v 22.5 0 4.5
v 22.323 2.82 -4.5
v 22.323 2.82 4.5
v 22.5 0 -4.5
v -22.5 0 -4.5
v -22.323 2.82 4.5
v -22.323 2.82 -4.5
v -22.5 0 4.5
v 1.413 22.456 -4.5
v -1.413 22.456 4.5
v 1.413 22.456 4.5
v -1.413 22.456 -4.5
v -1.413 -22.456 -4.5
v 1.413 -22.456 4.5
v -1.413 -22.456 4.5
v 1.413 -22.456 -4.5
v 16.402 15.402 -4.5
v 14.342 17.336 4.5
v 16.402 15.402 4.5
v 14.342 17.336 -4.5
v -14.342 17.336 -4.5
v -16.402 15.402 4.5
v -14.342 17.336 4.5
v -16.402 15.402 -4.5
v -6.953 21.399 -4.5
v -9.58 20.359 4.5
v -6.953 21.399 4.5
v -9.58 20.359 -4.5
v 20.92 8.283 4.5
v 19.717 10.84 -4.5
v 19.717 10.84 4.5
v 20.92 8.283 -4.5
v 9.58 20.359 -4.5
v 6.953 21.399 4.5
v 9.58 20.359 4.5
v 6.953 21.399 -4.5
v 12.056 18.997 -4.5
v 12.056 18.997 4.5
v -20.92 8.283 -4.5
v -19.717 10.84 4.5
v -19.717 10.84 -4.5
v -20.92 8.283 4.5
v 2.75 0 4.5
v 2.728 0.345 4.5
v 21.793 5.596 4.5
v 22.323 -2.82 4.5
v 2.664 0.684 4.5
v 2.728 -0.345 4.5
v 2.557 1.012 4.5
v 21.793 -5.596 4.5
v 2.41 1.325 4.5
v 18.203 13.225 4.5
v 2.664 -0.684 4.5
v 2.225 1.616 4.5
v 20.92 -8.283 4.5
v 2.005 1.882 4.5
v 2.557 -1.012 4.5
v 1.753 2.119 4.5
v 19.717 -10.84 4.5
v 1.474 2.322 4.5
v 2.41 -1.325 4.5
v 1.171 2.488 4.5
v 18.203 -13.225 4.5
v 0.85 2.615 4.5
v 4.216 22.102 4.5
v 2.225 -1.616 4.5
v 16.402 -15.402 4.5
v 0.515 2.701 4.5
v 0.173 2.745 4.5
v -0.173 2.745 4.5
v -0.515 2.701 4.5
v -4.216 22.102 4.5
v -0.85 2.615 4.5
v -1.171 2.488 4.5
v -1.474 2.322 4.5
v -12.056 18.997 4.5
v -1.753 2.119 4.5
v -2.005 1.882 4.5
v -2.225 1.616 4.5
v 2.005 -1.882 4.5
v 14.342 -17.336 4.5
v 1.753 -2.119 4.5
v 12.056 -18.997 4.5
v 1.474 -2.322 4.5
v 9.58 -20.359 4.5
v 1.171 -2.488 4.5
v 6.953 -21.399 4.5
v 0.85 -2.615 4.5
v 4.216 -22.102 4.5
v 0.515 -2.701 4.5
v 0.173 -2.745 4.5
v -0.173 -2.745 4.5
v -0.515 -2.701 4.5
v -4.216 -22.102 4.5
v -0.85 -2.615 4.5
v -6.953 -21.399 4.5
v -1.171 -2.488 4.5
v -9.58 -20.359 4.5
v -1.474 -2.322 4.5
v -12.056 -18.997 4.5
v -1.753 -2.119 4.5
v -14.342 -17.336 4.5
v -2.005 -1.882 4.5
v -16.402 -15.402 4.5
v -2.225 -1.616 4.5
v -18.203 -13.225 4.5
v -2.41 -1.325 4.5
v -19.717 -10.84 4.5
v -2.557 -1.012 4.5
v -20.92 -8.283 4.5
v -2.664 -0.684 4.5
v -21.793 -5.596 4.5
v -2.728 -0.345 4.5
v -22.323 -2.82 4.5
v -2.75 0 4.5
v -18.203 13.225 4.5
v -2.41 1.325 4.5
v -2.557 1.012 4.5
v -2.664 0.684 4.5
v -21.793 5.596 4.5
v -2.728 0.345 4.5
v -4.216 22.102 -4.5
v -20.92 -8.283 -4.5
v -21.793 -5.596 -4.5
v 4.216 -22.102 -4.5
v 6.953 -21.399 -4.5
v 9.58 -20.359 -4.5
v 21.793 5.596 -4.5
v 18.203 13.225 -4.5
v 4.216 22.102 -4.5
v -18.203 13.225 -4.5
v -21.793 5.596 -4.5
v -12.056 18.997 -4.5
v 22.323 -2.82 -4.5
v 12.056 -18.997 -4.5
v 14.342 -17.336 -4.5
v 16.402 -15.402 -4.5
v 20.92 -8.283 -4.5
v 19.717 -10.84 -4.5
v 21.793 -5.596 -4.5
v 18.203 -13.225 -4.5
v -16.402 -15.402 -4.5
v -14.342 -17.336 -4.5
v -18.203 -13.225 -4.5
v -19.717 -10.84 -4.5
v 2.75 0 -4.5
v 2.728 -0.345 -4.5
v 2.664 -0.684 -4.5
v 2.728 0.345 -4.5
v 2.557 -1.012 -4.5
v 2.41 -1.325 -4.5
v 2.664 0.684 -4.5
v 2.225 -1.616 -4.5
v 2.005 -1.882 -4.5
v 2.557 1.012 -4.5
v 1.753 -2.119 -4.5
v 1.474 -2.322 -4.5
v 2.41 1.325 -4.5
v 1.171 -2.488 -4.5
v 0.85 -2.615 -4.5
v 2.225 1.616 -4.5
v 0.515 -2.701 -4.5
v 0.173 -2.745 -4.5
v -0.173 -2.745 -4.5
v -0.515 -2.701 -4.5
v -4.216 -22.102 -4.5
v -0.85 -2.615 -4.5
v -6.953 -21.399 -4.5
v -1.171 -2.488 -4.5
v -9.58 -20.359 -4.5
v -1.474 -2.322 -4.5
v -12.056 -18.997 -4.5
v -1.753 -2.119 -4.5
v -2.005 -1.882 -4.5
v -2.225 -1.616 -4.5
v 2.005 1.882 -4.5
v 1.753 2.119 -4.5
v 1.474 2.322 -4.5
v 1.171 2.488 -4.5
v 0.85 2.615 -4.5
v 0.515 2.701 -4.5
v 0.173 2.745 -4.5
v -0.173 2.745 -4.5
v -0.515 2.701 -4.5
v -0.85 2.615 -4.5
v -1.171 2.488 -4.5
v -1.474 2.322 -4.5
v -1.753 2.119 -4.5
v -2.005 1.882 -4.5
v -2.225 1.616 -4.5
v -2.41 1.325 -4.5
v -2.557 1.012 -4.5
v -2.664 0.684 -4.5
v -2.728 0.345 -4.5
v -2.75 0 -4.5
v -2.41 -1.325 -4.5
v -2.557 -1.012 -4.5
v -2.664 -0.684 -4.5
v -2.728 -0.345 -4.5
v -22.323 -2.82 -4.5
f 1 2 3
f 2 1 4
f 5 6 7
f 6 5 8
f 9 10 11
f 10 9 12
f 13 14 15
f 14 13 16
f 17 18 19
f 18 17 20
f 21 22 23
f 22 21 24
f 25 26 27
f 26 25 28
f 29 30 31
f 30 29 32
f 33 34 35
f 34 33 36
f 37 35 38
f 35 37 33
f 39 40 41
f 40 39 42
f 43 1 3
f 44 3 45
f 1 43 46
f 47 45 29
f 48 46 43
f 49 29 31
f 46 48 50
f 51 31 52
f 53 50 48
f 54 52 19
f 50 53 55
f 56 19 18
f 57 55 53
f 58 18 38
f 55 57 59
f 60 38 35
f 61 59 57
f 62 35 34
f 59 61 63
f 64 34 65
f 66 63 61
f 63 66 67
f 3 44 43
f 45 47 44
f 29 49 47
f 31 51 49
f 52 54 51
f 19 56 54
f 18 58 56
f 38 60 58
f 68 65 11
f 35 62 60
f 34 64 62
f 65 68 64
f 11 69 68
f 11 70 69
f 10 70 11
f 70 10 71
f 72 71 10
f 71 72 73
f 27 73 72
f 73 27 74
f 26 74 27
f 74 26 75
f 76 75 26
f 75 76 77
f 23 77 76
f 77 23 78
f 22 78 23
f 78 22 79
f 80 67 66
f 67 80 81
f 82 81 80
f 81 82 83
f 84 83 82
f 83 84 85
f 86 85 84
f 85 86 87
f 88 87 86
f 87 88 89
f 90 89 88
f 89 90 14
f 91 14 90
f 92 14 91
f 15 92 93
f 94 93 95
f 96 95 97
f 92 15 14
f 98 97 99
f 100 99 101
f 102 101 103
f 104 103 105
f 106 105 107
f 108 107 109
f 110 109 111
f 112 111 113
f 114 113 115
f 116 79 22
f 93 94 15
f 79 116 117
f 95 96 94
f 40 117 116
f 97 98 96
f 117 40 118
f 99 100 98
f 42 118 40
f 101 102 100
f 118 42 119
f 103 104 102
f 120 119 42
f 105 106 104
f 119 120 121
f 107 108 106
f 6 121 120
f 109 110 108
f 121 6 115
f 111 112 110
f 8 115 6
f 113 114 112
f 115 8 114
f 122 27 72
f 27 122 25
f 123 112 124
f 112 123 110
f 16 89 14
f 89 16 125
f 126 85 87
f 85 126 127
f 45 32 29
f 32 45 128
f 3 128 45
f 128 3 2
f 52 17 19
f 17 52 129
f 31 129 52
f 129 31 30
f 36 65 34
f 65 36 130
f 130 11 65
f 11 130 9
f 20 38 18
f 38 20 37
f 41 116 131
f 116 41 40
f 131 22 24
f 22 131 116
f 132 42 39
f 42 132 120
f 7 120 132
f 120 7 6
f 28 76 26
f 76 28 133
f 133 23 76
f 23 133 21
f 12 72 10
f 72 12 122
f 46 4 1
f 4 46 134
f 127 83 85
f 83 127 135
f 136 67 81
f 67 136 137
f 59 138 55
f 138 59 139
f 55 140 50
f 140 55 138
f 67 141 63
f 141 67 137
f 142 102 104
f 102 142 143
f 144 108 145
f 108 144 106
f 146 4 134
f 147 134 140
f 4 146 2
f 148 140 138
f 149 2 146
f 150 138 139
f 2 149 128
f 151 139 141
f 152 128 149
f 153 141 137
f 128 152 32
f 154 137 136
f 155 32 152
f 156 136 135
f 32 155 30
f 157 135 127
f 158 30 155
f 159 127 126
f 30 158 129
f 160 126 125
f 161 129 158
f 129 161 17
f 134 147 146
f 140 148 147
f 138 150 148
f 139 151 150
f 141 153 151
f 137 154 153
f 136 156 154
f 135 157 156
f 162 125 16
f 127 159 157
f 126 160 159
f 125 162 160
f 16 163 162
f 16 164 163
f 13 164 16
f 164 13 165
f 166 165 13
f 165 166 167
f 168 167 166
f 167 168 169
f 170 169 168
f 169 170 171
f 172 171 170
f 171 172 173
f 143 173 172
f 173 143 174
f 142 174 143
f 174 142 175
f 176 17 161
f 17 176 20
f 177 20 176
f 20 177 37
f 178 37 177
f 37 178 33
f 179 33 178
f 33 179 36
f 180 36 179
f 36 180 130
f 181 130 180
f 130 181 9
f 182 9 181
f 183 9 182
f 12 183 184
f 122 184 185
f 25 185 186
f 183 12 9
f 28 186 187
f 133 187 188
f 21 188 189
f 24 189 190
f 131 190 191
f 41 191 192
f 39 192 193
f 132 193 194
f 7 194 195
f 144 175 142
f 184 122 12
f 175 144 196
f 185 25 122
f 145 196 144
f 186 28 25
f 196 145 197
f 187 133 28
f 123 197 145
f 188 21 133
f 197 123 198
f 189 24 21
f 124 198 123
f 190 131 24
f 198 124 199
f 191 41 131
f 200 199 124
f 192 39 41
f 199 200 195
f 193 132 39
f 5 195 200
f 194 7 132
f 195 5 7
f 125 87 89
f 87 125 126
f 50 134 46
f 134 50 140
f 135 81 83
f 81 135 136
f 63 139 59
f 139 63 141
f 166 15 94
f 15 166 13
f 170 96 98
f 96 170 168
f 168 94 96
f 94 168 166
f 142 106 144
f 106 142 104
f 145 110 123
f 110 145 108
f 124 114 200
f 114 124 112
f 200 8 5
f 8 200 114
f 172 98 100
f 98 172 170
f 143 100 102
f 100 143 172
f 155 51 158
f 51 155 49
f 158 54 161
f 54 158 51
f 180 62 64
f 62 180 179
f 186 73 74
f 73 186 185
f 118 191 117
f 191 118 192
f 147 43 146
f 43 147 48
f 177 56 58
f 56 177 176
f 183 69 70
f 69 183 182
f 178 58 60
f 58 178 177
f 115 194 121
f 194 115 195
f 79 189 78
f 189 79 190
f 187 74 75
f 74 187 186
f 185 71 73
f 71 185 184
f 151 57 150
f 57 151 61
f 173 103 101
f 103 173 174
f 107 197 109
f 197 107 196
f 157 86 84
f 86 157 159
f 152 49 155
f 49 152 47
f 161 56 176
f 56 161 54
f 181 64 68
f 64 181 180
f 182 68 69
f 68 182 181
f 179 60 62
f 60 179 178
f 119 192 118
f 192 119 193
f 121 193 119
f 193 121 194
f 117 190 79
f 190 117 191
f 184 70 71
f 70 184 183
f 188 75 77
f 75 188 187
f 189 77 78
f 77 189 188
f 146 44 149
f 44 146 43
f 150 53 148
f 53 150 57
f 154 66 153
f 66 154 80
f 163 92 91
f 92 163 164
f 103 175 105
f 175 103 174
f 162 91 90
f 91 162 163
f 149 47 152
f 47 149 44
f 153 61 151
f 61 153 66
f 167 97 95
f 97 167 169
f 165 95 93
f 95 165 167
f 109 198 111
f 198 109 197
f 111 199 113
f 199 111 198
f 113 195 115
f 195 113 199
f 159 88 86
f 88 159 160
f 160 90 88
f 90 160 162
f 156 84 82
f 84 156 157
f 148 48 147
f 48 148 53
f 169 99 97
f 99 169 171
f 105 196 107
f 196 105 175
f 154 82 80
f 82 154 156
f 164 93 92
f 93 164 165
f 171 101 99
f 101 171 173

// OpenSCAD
$fn = 50;


difference() {
	union() {
		translate(v = [0, 0, -4.5000000000]) {
			cylinder(h = 9, r = 22.5000000000);
		}
	}
	union() {
		translate(v = [0, 0, -100.0000000000]) {
			cylinder(h = 200, r = 2.7500000000);
		}
	}
}
